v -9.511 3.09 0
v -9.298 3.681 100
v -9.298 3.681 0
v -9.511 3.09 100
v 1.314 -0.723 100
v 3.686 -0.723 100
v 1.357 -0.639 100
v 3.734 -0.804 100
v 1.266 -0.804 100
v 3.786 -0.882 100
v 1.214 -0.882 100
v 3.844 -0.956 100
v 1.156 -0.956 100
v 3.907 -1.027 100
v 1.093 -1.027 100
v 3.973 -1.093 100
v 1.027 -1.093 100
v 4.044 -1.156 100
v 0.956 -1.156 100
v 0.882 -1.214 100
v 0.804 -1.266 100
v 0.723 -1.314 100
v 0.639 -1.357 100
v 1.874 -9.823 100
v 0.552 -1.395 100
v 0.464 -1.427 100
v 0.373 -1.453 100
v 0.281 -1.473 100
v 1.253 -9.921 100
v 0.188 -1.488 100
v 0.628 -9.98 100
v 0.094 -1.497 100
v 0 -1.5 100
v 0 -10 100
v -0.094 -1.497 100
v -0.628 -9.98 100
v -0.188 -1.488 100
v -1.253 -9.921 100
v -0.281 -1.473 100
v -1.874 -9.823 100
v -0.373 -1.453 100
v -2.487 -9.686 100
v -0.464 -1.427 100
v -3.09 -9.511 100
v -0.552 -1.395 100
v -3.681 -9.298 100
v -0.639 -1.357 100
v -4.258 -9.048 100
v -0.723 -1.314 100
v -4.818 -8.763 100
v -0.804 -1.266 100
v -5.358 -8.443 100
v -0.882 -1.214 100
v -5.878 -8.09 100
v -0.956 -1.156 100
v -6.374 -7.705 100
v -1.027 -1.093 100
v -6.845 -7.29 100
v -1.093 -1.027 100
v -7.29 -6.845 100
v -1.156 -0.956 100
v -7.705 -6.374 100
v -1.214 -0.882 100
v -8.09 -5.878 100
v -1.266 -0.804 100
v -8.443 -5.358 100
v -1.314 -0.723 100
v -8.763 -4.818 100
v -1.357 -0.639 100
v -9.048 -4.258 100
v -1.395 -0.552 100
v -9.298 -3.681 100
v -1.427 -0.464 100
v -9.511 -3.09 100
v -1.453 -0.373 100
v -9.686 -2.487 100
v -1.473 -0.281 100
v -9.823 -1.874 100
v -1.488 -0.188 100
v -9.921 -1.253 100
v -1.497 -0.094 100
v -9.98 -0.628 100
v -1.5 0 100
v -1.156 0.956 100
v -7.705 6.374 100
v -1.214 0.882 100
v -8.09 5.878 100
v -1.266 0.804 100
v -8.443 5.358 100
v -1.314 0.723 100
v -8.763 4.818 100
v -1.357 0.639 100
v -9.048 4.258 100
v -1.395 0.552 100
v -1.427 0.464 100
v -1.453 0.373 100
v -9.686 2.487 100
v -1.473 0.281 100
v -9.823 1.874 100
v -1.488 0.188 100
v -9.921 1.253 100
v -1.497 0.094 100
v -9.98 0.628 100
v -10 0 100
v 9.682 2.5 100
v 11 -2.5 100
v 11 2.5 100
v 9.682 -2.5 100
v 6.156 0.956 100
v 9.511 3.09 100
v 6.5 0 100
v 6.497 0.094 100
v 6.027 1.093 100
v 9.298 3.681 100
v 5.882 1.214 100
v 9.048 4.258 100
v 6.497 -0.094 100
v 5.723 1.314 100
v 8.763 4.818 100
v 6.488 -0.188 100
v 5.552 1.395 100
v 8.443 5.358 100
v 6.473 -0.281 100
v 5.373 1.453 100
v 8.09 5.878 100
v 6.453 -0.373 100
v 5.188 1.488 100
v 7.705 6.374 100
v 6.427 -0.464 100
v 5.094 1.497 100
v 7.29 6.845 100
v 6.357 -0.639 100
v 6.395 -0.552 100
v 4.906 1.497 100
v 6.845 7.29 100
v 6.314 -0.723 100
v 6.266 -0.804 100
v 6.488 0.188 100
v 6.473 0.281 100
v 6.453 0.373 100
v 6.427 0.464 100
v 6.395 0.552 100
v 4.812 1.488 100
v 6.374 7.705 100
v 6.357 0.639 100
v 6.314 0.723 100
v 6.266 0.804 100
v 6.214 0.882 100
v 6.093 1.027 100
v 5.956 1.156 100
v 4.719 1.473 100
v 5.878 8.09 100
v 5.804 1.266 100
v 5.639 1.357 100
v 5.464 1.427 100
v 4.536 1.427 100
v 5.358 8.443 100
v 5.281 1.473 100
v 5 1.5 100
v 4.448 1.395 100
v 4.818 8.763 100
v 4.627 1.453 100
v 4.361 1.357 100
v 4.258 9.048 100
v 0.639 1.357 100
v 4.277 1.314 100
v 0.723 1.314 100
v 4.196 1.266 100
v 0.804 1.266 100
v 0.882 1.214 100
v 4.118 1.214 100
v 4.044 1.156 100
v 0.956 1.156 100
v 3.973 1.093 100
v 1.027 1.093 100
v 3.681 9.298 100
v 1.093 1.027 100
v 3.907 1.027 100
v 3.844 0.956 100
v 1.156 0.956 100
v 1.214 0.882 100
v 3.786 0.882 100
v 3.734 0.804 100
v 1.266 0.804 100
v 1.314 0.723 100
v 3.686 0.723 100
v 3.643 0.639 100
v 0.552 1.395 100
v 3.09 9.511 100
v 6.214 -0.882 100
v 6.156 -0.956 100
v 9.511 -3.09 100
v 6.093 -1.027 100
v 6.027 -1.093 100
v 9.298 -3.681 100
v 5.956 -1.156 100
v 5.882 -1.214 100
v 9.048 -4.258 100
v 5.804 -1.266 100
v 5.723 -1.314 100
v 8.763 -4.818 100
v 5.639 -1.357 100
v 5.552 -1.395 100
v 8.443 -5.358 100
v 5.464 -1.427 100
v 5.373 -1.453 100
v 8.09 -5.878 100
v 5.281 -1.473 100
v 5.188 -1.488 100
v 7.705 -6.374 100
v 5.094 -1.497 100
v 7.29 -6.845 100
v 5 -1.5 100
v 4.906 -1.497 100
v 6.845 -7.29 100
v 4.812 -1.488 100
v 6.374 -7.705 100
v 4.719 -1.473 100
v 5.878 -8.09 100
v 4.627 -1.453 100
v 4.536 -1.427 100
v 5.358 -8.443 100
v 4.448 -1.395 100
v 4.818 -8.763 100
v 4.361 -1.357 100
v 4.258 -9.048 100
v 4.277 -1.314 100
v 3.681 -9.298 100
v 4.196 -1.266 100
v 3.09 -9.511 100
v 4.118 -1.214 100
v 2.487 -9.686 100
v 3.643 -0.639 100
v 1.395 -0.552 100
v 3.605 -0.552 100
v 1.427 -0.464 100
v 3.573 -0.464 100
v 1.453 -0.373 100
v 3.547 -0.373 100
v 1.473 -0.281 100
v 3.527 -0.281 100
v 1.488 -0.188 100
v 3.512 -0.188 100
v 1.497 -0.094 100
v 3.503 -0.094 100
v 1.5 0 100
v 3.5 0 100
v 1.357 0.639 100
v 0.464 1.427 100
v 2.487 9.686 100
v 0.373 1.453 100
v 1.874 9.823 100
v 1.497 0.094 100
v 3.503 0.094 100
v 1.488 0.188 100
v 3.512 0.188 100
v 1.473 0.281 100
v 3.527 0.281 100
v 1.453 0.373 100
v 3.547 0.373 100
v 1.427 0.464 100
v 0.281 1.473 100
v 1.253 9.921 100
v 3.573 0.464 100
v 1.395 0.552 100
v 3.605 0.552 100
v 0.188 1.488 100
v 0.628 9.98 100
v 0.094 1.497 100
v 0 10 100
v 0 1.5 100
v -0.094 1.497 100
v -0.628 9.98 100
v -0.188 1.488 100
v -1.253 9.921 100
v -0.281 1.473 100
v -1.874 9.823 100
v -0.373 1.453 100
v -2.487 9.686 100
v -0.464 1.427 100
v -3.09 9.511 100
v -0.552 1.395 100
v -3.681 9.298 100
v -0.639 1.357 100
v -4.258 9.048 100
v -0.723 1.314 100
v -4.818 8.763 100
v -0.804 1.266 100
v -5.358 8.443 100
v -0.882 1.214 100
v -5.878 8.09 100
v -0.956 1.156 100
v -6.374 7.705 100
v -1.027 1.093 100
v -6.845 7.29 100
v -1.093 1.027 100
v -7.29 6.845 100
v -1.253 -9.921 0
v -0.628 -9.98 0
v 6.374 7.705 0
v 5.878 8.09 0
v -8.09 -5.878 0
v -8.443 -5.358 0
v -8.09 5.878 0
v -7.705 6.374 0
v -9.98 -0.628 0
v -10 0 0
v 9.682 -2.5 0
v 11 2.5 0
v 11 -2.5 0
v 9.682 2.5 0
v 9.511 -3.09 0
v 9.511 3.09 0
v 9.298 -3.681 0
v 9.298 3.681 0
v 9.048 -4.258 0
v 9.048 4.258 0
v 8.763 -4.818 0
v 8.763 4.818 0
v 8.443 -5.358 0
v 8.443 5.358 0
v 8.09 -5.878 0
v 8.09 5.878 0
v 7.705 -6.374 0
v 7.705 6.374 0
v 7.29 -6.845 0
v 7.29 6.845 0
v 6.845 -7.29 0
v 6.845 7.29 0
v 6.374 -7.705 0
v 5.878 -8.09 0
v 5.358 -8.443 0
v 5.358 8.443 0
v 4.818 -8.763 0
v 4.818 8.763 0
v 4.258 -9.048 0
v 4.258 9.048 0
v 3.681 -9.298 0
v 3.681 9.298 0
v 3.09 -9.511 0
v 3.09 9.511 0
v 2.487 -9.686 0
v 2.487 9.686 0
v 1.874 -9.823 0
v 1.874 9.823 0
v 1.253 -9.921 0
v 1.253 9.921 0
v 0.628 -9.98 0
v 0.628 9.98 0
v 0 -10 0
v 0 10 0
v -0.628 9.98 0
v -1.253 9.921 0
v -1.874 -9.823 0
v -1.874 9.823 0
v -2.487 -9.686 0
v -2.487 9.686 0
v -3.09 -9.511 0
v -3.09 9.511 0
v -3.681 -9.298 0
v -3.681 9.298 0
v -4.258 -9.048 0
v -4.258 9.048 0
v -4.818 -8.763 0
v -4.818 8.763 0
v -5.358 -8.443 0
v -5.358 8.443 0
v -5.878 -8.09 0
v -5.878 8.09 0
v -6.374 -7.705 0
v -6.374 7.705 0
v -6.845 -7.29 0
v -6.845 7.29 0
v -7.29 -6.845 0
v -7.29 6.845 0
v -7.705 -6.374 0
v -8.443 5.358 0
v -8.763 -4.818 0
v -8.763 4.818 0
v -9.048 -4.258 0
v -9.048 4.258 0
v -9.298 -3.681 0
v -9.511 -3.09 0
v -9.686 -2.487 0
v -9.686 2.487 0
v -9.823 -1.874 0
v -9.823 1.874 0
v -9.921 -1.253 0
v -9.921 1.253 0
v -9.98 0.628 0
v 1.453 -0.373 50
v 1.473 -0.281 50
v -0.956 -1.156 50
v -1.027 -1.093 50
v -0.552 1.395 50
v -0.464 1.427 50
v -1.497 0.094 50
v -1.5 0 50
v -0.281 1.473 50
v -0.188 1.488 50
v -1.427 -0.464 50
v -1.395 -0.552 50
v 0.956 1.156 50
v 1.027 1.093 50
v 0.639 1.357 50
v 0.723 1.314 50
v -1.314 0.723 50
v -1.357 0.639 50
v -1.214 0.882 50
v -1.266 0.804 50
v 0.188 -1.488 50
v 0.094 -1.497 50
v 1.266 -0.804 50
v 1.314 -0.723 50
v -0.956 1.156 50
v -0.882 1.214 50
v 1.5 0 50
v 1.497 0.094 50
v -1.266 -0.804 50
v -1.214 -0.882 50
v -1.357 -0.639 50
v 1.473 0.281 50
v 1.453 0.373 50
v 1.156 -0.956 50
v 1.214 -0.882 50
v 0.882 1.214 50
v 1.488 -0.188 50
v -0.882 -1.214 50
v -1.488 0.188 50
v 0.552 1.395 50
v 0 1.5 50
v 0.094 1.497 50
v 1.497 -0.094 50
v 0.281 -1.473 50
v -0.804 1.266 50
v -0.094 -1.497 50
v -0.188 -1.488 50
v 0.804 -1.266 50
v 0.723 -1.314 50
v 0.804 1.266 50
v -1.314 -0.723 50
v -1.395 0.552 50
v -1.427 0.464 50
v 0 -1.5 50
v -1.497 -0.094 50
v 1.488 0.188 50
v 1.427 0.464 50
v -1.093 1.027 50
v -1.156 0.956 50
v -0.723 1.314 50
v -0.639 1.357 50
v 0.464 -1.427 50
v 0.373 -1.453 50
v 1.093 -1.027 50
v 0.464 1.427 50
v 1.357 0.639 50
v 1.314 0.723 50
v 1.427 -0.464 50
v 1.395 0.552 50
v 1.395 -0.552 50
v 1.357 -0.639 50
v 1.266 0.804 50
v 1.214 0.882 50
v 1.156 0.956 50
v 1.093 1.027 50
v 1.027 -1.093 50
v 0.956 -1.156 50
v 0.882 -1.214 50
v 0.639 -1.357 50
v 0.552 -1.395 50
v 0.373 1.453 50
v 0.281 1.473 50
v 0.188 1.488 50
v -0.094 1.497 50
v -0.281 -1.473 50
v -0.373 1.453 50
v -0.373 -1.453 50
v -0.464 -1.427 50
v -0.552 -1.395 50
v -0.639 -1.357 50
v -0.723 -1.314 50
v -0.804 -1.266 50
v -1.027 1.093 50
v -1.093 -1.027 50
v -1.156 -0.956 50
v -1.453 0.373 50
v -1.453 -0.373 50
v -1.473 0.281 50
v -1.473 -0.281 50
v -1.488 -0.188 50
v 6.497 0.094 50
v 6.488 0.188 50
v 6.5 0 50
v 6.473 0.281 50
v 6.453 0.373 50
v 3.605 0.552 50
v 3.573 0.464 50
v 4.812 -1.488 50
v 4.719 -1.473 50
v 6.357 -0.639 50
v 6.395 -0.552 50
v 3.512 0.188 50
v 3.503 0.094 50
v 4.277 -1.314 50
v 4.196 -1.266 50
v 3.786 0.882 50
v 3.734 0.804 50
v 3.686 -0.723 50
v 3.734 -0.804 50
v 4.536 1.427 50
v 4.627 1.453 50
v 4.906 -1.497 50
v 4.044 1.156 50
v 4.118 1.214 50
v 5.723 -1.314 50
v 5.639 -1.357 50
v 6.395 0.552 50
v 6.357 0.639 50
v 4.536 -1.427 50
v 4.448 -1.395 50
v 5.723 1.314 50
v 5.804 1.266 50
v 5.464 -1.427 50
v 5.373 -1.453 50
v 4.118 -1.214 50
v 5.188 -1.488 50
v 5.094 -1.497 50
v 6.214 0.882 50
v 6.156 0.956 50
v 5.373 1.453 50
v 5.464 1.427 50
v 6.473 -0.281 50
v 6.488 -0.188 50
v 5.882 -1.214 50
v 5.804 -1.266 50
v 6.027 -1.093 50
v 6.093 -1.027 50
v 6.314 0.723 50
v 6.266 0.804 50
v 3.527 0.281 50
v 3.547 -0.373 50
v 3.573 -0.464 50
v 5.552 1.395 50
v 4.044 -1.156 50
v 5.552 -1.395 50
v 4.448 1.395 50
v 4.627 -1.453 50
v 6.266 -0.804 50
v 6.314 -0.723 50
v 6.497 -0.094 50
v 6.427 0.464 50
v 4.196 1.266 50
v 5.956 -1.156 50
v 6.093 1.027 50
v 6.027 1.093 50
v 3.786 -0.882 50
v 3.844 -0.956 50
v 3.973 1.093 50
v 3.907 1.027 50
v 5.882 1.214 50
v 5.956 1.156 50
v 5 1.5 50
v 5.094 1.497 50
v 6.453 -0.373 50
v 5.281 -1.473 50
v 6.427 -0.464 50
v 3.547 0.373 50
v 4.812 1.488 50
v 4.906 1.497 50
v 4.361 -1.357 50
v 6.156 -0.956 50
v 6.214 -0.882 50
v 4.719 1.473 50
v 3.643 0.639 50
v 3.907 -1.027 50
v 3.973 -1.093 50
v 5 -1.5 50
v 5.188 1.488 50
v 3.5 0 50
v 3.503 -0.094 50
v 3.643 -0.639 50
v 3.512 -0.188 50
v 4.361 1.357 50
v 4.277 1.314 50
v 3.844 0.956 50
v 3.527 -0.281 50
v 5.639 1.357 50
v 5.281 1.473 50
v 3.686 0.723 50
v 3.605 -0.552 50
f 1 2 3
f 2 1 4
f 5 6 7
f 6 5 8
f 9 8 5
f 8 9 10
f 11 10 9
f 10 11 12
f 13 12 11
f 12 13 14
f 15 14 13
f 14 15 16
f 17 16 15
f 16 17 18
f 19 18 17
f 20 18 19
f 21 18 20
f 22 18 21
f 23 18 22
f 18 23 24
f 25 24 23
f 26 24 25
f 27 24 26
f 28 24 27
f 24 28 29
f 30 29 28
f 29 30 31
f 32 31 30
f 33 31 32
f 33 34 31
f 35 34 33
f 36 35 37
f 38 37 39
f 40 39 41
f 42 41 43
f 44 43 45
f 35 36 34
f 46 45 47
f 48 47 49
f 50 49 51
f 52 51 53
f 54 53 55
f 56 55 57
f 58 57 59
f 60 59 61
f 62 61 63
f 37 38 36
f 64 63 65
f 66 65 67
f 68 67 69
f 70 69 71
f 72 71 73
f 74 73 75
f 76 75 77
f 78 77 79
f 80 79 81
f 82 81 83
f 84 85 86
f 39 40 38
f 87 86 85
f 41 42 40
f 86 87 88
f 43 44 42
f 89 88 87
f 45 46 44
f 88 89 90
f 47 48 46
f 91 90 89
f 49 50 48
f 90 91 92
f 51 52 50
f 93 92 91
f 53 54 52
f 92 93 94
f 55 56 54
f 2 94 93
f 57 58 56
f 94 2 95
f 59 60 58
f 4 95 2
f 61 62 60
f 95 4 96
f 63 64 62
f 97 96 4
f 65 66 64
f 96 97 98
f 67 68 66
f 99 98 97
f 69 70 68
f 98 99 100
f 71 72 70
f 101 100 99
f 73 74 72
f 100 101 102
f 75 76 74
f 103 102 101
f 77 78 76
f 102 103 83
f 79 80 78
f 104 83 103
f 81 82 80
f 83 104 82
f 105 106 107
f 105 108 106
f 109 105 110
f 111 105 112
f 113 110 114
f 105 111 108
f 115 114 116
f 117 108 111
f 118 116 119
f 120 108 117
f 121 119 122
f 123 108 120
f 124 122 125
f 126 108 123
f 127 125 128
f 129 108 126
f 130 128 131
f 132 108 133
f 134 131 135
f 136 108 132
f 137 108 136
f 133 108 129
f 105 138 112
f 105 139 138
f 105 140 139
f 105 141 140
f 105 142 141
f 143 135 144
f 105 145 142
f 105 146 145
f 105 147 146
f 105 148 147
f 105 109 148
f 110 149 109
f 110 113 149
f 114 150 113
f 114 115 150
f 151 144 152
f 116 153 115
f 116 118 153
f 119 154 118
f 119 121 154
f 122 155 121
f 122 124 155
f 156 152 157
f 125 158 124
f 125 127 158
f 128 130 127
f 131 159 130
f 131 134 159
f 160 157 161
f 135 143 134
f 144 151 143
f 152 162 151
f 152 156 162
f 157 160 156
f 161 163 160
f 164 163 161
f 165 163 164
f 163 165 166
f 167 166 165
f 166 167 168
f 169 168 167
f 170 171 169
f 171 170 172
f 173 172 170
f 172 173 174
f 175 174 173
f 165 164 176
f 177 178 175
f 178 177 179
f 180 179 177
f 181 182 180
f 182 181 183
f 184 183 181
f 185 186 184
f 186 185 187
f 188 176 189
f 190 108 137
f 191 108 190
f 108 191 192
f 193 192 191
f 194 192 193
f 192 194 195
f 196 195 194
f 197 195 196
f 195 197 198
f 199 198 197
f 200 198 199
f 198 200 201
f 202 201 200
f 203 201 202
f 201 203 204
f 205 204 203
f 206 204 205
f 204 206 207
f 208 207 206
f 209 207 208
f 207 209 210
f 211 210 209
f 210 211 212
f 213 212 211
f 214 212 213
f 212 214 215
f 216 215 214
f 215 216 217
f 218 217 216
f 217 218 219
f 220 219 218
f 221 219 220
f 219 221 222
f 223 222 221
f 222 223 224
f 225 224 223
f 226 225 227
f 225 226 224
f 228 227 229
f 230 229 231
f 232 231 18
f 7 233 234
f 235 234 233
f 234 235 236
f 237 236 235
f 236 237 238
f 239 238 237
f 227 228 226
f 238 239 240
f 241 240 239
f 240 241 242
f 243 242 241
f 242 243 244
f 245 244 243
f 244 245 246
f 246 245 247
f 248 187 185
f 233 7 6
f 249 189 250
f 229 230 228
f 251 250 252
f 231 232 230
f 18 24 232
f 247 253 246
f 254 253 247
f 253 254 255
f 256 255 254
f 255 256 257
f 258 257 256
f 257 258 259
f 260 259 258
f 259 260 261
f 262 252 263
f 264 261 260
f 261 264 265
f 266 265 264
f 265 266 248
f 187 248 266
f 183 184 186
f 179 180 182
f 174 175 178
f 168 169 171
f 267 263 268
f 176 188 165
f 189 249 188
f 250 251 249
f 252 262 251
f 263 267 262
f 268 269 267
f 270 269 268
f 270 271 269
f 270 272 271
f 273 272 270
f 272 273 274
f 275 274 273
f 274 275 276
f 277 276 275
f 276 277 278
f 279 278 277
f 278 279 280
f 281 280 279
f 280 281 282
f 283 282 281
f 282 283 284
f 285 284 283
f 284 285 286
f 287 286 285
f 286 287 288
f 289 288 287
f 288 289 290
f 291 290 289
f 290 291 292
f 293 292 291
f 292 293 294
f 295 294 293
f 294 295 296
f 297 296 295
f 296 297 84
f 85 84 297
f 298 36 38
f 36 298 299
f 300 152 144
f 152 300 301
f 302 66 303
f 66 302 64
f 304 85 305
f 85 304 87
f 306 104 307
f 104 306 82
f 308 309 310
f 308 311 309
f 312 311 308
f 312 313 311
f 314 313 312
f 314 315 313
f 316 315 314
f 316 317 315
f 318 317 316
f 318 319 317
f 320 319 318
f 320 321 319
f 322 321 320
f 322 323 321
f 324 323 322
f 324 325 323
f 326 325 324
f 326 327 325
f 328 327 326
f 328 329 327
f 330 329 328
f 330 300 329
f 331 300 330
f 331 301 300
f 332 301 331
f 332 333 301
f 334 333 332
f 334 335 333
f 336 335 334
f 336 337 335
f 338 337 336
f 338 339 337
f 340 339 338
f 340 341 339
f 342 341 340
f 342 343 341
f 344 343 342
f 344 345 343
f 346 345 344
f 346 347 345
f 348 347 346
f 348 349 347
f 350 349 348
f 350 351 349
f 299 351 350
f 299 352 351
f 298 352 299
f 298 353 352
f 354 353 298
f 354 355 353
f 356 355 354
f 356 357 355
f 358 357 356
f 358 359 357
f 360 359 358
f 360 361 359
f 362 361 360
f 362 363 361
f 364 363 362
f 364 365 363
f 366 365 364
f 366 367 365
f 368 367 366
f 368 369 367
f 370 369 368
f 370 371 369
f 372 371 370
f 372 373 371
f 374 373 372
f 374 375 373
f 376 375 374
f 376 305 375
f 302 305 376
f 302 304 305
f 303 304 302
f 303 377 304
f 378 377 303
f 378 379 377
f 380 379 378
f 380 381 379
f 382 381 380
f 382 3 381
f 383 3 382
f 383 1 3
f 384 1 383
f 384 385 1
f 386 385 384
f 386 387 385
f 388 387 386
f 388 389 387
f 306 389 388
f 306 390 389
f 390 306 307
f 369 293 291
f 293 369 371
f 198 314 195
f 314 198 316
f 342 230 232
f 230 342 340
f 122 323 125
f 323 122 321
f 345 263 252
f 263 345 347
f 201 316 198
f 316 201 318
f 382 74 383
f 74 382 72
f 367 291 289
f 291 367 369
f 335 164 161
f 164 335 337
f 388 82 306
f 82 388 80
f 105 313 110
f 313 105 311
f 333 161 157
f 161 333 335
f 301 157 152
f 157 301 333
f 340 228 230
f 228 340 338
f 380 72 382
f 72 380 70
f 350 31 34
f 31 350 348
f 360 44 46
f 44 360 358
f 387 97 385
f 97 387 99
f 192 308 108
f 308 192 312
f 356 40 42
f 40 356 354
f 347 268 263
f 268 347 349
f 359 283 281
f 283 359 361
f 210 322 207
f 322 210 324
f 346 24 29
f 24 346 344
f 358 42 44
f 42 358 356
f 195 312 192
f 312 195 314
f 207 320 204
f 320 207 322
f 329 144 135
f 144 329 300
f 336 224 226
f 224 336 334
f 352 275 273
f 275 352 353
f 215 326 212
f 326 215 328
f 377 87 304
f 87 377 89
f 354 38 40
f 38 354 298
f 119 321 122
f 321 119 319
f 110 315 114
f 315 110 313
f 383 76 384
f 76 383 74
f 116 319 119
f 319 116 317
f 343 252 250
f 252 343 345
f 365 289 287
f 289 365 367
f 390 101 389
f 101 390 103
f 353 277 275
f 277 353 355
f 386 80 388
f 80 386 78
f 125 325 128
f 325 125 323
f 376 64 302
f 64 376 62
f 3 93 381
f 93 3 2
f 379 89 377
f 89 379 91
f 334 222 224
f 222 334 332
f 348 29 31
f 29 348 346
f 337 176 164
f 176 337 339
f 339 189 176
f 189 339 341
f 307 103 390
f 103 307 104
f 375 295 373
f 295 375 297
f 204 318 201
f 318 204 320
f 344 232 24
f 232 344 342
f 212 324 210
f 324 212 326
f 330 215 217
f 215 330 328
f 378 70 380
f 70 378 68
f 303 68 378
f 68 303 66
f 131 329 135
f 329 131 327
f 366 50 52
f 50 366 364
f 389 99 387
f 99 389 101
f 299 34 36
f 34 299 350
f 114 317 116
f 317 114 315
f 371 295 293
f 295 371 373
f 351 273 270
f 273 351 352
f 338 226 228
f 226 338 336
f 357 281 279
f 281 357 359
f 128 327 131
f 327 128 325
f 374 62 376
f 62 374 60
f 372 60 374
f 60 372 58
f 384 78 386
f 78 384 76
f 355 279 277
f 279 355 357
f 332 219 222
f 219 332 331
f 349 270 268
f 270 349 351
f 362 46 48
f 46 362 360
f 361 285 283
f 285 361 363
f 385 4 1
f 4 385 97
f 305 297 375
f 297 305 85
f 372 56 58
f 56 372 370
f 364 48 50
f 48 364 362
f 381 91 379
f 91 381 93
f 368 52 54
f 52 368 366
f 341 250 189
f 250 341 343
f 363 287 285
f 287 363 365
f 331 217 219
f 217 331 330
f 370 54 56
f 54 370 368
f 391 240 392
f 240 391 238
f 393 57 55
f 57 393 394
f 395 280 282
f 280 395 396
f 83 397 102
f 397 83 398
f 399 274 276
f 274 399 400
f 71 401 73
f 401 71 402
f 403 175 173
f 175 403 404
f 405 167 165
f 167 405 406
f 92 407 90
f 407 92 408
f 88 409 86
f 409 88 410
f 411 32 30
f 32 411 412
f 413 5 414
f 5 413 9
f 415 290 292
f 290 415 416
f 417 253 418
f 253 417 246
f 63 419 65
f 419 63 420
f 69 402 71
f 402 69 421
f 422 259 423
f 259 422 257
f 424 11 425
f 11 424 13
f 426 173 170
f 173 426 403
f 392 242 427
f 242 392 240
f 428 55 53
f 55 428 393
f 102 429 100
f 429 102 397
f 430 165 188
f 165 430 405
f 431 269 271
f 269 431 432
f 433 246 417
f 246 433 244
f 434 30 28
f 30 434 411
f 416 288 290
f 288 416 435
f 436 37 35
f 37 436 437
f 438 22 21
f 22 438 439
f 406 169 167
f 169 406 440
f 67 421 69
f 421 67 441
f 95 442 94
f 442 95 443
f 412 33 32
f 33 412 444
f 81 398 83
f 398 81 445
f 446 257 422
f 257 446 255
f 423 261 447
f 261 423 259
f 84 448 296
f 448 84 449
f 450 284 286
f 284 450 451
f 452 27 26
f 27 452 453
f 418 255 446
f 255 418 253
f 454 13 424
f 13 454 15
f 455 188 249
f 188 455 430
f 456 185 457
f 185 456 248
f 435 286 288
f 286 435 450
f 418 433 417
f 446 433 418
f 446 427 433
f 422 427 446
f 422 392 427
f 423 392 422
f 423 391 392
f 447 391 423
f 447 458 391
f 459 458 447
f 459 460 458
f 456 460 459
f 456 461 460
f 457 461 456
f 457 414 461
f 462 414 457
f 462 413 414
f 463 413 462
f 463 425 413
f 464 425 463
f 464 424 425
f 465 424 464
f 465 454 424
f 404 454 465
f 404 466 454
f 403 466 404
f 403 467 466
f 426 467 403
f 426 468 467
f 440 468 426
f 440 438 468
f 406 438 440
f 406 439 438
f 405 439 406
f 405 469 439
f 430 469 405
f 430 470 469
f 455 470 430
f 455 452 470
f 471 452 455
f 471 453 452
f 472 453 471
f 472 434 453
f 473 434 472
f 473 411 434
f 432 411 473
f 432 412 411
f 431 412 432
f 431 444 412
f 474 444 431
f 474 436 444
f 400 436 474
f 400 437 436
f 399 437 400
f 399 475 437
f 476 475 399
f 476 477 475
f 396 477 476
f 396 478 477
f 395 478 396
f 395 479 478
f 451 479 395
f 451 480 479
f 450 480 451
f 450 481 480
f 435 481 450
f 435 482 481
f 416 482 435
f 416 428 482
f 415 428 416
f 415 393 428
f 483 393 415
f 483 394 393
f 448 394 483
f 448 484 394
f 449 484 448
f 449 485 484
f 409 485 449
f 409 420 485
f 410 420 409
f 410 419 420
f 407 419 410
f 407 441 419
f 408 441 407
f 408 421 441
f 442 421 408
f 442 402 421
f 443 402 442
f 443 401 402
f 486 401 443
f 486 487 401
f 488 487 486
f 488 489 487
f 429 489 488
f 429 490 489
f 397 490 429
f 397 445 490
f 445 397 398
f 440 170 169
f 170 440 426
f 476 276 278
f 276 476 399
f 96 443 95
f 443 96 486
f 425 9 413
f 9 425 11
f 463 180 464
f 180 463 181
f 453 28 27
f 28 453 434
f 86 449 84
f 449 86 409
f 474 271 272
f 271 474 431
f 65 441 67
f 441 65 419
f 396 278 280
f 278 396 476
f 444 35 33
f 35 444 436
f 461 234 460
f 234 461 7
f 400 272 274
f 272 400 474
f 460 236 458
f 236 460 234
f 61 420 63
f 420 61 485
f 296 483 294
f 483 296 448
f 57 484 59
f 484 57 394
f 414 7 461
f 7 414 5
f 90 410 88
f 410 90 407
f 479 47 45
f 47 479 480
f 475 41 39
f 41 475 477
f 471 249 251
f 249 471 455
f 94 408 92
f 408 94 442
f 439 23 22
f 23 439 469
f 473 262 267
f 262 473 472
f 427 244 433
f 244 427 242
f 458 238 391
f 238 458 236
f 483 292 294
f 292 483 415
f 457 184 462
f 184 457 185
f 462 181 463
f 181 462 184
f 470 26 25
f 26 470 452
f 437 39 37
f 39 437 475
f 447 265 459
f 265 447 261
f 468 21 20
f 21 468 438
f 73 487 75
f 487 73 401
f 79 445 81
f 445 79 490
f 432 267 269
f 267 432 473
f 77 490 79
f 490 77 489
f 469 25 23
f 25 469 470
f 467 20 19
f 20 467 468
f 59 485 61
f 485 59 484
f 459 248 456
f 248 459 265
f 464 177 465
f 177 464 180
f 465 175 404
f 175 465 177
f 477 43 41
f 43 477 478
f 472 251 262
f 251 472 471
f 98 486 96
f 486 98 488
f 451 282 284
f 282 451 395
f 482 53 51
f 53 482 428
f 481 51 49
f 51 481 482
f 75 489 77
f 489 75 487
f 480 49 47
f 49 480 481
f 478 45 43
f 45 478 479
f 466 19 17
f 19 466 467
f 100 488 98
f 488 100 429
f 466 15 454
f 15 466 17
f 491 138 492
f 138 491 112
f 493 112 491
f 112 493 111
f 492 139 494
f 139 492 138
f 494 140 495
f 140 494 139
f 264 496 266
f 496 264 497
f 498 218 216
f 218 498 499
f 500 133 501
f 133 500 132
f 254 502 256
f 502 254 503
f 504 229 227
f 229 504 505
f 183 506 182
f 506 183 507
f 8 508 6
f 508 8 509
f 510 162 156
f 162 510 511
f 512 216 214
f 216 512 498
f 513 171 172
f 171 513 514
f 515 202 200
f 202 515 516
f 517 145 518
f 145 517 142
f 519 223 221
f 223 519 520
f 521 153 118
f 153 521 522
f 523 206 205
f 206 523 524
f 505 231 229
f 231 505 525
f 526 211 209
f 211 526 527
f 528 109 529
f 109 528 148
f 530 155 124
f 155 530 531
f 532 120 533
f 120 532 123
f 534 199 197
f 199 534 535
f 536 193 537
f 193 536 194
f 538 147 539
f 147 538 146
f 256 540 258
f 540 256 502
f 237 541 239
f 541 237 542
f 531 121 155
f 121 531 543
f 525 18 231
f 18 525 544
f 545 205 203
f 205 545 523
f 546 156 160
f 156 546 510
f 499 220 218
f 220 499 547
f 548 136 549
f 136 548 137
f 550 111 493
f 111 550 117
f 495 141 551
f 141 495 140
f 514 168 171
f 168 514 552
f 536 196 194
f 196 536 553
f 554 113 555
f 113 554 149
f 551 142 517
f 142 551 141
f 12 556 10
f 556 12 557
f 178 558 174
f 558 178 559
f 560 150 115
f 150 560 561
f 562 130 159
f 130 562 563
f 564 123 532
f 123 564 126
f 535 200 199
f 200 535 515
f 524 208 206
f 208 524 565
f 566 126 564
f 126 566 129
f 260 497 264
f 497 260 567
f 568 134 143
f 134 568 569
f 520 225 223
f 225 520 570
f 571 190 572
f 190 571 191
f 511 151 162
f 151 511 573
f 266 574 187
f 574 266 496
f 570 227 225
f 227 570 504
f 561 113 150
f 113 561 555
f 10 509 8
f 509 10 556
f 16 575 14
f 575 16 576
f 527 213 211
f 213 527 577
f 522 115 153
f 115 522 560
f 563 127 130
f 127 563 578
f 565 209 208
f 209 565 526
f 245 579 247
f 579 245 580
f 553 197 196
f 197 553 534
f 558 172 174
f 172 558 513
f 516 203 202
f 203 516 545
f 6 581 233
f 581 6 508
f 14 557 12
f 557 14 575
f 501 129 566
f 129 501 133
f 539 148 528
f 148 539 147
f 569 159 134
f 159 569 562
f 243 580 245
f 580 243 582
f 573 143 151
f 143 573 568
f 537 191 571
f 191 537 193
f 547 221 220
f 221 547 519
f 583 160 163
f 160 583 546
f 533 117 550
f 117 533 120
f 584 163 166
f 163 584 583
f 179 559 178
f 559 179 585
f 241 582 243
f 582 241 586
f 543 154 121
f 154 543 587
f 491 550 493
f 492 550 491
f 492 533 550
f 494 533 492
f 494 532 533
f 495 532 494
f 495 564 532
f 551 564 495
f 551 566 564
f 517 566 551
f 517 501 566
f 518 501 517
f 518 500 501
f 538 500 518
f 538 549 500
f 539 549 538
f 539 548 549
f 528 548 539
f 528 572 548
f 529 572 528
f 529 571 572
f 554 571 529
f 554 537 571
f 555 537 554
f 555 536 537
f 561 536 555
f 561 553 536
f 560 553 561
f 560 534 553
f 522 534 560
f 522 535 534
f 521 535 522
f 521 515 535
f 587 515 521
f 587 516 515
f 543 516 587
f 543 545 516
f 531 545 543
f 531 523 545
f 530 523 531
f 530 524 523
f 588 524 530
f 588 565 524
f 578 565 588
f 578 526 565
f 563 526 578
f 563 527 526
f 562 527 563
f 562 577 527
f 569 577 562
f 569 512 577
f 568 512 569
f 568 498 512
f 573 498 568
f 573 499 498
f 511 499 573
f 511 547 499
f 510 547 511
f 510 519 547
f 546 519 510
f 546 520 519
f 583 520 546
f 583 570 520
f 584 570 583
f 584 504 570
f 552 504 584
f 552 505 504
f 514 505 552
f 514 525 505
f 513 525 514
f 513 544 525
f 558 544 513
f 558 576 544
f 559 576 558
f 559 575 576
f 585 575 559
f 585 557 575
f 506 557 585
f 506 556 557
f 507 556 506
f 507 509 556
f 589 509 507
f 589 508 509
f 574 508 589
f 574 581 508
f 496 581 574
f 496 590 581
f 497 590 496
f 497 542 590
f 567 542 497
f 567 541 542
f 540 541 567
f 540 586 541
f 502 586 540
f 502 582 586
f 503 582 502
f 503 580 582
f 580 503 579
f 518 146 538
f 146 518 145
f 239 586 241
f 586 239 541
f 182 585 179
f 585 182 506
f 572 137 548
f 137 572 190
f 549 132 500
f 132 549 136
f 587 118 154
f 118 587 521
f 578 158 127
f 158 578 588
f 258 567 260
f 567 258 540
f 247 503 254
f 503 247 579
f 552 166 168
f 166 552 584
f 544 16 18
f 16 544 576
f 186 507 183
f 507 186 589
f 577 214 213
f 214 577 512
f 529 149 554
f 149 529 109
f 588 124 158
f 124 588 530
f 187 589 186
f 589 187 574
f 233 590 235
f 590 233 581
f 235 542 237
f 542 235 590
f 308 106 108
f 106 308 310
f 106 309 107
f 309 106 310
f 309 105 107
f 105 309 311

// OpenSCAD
//in milimeters
//material 

hole_diameter=3;
outer_diameter=20;
thickness=100;


module lockcube(){
 translate([outer_diameter/2,0,thickness/2]) rotate([0,0,90]) cube([5,2,thickness], center=true);
}

module form(){
translate([0,0,thickness/2]){
difference(){
//outer
cylinder(h=thickness,r=outer_diameter/2,center=true,$fn=100);
//hole
cylinder(h=thickness+6,r=hole_diameter/2,$fn=100);
translate([outer_diameter/4,0,0]) cylinder(h=thickness+6,r=hole_diameter/2,$fn=100);
}
} 
}


union(){
form();
lockcube();
}
